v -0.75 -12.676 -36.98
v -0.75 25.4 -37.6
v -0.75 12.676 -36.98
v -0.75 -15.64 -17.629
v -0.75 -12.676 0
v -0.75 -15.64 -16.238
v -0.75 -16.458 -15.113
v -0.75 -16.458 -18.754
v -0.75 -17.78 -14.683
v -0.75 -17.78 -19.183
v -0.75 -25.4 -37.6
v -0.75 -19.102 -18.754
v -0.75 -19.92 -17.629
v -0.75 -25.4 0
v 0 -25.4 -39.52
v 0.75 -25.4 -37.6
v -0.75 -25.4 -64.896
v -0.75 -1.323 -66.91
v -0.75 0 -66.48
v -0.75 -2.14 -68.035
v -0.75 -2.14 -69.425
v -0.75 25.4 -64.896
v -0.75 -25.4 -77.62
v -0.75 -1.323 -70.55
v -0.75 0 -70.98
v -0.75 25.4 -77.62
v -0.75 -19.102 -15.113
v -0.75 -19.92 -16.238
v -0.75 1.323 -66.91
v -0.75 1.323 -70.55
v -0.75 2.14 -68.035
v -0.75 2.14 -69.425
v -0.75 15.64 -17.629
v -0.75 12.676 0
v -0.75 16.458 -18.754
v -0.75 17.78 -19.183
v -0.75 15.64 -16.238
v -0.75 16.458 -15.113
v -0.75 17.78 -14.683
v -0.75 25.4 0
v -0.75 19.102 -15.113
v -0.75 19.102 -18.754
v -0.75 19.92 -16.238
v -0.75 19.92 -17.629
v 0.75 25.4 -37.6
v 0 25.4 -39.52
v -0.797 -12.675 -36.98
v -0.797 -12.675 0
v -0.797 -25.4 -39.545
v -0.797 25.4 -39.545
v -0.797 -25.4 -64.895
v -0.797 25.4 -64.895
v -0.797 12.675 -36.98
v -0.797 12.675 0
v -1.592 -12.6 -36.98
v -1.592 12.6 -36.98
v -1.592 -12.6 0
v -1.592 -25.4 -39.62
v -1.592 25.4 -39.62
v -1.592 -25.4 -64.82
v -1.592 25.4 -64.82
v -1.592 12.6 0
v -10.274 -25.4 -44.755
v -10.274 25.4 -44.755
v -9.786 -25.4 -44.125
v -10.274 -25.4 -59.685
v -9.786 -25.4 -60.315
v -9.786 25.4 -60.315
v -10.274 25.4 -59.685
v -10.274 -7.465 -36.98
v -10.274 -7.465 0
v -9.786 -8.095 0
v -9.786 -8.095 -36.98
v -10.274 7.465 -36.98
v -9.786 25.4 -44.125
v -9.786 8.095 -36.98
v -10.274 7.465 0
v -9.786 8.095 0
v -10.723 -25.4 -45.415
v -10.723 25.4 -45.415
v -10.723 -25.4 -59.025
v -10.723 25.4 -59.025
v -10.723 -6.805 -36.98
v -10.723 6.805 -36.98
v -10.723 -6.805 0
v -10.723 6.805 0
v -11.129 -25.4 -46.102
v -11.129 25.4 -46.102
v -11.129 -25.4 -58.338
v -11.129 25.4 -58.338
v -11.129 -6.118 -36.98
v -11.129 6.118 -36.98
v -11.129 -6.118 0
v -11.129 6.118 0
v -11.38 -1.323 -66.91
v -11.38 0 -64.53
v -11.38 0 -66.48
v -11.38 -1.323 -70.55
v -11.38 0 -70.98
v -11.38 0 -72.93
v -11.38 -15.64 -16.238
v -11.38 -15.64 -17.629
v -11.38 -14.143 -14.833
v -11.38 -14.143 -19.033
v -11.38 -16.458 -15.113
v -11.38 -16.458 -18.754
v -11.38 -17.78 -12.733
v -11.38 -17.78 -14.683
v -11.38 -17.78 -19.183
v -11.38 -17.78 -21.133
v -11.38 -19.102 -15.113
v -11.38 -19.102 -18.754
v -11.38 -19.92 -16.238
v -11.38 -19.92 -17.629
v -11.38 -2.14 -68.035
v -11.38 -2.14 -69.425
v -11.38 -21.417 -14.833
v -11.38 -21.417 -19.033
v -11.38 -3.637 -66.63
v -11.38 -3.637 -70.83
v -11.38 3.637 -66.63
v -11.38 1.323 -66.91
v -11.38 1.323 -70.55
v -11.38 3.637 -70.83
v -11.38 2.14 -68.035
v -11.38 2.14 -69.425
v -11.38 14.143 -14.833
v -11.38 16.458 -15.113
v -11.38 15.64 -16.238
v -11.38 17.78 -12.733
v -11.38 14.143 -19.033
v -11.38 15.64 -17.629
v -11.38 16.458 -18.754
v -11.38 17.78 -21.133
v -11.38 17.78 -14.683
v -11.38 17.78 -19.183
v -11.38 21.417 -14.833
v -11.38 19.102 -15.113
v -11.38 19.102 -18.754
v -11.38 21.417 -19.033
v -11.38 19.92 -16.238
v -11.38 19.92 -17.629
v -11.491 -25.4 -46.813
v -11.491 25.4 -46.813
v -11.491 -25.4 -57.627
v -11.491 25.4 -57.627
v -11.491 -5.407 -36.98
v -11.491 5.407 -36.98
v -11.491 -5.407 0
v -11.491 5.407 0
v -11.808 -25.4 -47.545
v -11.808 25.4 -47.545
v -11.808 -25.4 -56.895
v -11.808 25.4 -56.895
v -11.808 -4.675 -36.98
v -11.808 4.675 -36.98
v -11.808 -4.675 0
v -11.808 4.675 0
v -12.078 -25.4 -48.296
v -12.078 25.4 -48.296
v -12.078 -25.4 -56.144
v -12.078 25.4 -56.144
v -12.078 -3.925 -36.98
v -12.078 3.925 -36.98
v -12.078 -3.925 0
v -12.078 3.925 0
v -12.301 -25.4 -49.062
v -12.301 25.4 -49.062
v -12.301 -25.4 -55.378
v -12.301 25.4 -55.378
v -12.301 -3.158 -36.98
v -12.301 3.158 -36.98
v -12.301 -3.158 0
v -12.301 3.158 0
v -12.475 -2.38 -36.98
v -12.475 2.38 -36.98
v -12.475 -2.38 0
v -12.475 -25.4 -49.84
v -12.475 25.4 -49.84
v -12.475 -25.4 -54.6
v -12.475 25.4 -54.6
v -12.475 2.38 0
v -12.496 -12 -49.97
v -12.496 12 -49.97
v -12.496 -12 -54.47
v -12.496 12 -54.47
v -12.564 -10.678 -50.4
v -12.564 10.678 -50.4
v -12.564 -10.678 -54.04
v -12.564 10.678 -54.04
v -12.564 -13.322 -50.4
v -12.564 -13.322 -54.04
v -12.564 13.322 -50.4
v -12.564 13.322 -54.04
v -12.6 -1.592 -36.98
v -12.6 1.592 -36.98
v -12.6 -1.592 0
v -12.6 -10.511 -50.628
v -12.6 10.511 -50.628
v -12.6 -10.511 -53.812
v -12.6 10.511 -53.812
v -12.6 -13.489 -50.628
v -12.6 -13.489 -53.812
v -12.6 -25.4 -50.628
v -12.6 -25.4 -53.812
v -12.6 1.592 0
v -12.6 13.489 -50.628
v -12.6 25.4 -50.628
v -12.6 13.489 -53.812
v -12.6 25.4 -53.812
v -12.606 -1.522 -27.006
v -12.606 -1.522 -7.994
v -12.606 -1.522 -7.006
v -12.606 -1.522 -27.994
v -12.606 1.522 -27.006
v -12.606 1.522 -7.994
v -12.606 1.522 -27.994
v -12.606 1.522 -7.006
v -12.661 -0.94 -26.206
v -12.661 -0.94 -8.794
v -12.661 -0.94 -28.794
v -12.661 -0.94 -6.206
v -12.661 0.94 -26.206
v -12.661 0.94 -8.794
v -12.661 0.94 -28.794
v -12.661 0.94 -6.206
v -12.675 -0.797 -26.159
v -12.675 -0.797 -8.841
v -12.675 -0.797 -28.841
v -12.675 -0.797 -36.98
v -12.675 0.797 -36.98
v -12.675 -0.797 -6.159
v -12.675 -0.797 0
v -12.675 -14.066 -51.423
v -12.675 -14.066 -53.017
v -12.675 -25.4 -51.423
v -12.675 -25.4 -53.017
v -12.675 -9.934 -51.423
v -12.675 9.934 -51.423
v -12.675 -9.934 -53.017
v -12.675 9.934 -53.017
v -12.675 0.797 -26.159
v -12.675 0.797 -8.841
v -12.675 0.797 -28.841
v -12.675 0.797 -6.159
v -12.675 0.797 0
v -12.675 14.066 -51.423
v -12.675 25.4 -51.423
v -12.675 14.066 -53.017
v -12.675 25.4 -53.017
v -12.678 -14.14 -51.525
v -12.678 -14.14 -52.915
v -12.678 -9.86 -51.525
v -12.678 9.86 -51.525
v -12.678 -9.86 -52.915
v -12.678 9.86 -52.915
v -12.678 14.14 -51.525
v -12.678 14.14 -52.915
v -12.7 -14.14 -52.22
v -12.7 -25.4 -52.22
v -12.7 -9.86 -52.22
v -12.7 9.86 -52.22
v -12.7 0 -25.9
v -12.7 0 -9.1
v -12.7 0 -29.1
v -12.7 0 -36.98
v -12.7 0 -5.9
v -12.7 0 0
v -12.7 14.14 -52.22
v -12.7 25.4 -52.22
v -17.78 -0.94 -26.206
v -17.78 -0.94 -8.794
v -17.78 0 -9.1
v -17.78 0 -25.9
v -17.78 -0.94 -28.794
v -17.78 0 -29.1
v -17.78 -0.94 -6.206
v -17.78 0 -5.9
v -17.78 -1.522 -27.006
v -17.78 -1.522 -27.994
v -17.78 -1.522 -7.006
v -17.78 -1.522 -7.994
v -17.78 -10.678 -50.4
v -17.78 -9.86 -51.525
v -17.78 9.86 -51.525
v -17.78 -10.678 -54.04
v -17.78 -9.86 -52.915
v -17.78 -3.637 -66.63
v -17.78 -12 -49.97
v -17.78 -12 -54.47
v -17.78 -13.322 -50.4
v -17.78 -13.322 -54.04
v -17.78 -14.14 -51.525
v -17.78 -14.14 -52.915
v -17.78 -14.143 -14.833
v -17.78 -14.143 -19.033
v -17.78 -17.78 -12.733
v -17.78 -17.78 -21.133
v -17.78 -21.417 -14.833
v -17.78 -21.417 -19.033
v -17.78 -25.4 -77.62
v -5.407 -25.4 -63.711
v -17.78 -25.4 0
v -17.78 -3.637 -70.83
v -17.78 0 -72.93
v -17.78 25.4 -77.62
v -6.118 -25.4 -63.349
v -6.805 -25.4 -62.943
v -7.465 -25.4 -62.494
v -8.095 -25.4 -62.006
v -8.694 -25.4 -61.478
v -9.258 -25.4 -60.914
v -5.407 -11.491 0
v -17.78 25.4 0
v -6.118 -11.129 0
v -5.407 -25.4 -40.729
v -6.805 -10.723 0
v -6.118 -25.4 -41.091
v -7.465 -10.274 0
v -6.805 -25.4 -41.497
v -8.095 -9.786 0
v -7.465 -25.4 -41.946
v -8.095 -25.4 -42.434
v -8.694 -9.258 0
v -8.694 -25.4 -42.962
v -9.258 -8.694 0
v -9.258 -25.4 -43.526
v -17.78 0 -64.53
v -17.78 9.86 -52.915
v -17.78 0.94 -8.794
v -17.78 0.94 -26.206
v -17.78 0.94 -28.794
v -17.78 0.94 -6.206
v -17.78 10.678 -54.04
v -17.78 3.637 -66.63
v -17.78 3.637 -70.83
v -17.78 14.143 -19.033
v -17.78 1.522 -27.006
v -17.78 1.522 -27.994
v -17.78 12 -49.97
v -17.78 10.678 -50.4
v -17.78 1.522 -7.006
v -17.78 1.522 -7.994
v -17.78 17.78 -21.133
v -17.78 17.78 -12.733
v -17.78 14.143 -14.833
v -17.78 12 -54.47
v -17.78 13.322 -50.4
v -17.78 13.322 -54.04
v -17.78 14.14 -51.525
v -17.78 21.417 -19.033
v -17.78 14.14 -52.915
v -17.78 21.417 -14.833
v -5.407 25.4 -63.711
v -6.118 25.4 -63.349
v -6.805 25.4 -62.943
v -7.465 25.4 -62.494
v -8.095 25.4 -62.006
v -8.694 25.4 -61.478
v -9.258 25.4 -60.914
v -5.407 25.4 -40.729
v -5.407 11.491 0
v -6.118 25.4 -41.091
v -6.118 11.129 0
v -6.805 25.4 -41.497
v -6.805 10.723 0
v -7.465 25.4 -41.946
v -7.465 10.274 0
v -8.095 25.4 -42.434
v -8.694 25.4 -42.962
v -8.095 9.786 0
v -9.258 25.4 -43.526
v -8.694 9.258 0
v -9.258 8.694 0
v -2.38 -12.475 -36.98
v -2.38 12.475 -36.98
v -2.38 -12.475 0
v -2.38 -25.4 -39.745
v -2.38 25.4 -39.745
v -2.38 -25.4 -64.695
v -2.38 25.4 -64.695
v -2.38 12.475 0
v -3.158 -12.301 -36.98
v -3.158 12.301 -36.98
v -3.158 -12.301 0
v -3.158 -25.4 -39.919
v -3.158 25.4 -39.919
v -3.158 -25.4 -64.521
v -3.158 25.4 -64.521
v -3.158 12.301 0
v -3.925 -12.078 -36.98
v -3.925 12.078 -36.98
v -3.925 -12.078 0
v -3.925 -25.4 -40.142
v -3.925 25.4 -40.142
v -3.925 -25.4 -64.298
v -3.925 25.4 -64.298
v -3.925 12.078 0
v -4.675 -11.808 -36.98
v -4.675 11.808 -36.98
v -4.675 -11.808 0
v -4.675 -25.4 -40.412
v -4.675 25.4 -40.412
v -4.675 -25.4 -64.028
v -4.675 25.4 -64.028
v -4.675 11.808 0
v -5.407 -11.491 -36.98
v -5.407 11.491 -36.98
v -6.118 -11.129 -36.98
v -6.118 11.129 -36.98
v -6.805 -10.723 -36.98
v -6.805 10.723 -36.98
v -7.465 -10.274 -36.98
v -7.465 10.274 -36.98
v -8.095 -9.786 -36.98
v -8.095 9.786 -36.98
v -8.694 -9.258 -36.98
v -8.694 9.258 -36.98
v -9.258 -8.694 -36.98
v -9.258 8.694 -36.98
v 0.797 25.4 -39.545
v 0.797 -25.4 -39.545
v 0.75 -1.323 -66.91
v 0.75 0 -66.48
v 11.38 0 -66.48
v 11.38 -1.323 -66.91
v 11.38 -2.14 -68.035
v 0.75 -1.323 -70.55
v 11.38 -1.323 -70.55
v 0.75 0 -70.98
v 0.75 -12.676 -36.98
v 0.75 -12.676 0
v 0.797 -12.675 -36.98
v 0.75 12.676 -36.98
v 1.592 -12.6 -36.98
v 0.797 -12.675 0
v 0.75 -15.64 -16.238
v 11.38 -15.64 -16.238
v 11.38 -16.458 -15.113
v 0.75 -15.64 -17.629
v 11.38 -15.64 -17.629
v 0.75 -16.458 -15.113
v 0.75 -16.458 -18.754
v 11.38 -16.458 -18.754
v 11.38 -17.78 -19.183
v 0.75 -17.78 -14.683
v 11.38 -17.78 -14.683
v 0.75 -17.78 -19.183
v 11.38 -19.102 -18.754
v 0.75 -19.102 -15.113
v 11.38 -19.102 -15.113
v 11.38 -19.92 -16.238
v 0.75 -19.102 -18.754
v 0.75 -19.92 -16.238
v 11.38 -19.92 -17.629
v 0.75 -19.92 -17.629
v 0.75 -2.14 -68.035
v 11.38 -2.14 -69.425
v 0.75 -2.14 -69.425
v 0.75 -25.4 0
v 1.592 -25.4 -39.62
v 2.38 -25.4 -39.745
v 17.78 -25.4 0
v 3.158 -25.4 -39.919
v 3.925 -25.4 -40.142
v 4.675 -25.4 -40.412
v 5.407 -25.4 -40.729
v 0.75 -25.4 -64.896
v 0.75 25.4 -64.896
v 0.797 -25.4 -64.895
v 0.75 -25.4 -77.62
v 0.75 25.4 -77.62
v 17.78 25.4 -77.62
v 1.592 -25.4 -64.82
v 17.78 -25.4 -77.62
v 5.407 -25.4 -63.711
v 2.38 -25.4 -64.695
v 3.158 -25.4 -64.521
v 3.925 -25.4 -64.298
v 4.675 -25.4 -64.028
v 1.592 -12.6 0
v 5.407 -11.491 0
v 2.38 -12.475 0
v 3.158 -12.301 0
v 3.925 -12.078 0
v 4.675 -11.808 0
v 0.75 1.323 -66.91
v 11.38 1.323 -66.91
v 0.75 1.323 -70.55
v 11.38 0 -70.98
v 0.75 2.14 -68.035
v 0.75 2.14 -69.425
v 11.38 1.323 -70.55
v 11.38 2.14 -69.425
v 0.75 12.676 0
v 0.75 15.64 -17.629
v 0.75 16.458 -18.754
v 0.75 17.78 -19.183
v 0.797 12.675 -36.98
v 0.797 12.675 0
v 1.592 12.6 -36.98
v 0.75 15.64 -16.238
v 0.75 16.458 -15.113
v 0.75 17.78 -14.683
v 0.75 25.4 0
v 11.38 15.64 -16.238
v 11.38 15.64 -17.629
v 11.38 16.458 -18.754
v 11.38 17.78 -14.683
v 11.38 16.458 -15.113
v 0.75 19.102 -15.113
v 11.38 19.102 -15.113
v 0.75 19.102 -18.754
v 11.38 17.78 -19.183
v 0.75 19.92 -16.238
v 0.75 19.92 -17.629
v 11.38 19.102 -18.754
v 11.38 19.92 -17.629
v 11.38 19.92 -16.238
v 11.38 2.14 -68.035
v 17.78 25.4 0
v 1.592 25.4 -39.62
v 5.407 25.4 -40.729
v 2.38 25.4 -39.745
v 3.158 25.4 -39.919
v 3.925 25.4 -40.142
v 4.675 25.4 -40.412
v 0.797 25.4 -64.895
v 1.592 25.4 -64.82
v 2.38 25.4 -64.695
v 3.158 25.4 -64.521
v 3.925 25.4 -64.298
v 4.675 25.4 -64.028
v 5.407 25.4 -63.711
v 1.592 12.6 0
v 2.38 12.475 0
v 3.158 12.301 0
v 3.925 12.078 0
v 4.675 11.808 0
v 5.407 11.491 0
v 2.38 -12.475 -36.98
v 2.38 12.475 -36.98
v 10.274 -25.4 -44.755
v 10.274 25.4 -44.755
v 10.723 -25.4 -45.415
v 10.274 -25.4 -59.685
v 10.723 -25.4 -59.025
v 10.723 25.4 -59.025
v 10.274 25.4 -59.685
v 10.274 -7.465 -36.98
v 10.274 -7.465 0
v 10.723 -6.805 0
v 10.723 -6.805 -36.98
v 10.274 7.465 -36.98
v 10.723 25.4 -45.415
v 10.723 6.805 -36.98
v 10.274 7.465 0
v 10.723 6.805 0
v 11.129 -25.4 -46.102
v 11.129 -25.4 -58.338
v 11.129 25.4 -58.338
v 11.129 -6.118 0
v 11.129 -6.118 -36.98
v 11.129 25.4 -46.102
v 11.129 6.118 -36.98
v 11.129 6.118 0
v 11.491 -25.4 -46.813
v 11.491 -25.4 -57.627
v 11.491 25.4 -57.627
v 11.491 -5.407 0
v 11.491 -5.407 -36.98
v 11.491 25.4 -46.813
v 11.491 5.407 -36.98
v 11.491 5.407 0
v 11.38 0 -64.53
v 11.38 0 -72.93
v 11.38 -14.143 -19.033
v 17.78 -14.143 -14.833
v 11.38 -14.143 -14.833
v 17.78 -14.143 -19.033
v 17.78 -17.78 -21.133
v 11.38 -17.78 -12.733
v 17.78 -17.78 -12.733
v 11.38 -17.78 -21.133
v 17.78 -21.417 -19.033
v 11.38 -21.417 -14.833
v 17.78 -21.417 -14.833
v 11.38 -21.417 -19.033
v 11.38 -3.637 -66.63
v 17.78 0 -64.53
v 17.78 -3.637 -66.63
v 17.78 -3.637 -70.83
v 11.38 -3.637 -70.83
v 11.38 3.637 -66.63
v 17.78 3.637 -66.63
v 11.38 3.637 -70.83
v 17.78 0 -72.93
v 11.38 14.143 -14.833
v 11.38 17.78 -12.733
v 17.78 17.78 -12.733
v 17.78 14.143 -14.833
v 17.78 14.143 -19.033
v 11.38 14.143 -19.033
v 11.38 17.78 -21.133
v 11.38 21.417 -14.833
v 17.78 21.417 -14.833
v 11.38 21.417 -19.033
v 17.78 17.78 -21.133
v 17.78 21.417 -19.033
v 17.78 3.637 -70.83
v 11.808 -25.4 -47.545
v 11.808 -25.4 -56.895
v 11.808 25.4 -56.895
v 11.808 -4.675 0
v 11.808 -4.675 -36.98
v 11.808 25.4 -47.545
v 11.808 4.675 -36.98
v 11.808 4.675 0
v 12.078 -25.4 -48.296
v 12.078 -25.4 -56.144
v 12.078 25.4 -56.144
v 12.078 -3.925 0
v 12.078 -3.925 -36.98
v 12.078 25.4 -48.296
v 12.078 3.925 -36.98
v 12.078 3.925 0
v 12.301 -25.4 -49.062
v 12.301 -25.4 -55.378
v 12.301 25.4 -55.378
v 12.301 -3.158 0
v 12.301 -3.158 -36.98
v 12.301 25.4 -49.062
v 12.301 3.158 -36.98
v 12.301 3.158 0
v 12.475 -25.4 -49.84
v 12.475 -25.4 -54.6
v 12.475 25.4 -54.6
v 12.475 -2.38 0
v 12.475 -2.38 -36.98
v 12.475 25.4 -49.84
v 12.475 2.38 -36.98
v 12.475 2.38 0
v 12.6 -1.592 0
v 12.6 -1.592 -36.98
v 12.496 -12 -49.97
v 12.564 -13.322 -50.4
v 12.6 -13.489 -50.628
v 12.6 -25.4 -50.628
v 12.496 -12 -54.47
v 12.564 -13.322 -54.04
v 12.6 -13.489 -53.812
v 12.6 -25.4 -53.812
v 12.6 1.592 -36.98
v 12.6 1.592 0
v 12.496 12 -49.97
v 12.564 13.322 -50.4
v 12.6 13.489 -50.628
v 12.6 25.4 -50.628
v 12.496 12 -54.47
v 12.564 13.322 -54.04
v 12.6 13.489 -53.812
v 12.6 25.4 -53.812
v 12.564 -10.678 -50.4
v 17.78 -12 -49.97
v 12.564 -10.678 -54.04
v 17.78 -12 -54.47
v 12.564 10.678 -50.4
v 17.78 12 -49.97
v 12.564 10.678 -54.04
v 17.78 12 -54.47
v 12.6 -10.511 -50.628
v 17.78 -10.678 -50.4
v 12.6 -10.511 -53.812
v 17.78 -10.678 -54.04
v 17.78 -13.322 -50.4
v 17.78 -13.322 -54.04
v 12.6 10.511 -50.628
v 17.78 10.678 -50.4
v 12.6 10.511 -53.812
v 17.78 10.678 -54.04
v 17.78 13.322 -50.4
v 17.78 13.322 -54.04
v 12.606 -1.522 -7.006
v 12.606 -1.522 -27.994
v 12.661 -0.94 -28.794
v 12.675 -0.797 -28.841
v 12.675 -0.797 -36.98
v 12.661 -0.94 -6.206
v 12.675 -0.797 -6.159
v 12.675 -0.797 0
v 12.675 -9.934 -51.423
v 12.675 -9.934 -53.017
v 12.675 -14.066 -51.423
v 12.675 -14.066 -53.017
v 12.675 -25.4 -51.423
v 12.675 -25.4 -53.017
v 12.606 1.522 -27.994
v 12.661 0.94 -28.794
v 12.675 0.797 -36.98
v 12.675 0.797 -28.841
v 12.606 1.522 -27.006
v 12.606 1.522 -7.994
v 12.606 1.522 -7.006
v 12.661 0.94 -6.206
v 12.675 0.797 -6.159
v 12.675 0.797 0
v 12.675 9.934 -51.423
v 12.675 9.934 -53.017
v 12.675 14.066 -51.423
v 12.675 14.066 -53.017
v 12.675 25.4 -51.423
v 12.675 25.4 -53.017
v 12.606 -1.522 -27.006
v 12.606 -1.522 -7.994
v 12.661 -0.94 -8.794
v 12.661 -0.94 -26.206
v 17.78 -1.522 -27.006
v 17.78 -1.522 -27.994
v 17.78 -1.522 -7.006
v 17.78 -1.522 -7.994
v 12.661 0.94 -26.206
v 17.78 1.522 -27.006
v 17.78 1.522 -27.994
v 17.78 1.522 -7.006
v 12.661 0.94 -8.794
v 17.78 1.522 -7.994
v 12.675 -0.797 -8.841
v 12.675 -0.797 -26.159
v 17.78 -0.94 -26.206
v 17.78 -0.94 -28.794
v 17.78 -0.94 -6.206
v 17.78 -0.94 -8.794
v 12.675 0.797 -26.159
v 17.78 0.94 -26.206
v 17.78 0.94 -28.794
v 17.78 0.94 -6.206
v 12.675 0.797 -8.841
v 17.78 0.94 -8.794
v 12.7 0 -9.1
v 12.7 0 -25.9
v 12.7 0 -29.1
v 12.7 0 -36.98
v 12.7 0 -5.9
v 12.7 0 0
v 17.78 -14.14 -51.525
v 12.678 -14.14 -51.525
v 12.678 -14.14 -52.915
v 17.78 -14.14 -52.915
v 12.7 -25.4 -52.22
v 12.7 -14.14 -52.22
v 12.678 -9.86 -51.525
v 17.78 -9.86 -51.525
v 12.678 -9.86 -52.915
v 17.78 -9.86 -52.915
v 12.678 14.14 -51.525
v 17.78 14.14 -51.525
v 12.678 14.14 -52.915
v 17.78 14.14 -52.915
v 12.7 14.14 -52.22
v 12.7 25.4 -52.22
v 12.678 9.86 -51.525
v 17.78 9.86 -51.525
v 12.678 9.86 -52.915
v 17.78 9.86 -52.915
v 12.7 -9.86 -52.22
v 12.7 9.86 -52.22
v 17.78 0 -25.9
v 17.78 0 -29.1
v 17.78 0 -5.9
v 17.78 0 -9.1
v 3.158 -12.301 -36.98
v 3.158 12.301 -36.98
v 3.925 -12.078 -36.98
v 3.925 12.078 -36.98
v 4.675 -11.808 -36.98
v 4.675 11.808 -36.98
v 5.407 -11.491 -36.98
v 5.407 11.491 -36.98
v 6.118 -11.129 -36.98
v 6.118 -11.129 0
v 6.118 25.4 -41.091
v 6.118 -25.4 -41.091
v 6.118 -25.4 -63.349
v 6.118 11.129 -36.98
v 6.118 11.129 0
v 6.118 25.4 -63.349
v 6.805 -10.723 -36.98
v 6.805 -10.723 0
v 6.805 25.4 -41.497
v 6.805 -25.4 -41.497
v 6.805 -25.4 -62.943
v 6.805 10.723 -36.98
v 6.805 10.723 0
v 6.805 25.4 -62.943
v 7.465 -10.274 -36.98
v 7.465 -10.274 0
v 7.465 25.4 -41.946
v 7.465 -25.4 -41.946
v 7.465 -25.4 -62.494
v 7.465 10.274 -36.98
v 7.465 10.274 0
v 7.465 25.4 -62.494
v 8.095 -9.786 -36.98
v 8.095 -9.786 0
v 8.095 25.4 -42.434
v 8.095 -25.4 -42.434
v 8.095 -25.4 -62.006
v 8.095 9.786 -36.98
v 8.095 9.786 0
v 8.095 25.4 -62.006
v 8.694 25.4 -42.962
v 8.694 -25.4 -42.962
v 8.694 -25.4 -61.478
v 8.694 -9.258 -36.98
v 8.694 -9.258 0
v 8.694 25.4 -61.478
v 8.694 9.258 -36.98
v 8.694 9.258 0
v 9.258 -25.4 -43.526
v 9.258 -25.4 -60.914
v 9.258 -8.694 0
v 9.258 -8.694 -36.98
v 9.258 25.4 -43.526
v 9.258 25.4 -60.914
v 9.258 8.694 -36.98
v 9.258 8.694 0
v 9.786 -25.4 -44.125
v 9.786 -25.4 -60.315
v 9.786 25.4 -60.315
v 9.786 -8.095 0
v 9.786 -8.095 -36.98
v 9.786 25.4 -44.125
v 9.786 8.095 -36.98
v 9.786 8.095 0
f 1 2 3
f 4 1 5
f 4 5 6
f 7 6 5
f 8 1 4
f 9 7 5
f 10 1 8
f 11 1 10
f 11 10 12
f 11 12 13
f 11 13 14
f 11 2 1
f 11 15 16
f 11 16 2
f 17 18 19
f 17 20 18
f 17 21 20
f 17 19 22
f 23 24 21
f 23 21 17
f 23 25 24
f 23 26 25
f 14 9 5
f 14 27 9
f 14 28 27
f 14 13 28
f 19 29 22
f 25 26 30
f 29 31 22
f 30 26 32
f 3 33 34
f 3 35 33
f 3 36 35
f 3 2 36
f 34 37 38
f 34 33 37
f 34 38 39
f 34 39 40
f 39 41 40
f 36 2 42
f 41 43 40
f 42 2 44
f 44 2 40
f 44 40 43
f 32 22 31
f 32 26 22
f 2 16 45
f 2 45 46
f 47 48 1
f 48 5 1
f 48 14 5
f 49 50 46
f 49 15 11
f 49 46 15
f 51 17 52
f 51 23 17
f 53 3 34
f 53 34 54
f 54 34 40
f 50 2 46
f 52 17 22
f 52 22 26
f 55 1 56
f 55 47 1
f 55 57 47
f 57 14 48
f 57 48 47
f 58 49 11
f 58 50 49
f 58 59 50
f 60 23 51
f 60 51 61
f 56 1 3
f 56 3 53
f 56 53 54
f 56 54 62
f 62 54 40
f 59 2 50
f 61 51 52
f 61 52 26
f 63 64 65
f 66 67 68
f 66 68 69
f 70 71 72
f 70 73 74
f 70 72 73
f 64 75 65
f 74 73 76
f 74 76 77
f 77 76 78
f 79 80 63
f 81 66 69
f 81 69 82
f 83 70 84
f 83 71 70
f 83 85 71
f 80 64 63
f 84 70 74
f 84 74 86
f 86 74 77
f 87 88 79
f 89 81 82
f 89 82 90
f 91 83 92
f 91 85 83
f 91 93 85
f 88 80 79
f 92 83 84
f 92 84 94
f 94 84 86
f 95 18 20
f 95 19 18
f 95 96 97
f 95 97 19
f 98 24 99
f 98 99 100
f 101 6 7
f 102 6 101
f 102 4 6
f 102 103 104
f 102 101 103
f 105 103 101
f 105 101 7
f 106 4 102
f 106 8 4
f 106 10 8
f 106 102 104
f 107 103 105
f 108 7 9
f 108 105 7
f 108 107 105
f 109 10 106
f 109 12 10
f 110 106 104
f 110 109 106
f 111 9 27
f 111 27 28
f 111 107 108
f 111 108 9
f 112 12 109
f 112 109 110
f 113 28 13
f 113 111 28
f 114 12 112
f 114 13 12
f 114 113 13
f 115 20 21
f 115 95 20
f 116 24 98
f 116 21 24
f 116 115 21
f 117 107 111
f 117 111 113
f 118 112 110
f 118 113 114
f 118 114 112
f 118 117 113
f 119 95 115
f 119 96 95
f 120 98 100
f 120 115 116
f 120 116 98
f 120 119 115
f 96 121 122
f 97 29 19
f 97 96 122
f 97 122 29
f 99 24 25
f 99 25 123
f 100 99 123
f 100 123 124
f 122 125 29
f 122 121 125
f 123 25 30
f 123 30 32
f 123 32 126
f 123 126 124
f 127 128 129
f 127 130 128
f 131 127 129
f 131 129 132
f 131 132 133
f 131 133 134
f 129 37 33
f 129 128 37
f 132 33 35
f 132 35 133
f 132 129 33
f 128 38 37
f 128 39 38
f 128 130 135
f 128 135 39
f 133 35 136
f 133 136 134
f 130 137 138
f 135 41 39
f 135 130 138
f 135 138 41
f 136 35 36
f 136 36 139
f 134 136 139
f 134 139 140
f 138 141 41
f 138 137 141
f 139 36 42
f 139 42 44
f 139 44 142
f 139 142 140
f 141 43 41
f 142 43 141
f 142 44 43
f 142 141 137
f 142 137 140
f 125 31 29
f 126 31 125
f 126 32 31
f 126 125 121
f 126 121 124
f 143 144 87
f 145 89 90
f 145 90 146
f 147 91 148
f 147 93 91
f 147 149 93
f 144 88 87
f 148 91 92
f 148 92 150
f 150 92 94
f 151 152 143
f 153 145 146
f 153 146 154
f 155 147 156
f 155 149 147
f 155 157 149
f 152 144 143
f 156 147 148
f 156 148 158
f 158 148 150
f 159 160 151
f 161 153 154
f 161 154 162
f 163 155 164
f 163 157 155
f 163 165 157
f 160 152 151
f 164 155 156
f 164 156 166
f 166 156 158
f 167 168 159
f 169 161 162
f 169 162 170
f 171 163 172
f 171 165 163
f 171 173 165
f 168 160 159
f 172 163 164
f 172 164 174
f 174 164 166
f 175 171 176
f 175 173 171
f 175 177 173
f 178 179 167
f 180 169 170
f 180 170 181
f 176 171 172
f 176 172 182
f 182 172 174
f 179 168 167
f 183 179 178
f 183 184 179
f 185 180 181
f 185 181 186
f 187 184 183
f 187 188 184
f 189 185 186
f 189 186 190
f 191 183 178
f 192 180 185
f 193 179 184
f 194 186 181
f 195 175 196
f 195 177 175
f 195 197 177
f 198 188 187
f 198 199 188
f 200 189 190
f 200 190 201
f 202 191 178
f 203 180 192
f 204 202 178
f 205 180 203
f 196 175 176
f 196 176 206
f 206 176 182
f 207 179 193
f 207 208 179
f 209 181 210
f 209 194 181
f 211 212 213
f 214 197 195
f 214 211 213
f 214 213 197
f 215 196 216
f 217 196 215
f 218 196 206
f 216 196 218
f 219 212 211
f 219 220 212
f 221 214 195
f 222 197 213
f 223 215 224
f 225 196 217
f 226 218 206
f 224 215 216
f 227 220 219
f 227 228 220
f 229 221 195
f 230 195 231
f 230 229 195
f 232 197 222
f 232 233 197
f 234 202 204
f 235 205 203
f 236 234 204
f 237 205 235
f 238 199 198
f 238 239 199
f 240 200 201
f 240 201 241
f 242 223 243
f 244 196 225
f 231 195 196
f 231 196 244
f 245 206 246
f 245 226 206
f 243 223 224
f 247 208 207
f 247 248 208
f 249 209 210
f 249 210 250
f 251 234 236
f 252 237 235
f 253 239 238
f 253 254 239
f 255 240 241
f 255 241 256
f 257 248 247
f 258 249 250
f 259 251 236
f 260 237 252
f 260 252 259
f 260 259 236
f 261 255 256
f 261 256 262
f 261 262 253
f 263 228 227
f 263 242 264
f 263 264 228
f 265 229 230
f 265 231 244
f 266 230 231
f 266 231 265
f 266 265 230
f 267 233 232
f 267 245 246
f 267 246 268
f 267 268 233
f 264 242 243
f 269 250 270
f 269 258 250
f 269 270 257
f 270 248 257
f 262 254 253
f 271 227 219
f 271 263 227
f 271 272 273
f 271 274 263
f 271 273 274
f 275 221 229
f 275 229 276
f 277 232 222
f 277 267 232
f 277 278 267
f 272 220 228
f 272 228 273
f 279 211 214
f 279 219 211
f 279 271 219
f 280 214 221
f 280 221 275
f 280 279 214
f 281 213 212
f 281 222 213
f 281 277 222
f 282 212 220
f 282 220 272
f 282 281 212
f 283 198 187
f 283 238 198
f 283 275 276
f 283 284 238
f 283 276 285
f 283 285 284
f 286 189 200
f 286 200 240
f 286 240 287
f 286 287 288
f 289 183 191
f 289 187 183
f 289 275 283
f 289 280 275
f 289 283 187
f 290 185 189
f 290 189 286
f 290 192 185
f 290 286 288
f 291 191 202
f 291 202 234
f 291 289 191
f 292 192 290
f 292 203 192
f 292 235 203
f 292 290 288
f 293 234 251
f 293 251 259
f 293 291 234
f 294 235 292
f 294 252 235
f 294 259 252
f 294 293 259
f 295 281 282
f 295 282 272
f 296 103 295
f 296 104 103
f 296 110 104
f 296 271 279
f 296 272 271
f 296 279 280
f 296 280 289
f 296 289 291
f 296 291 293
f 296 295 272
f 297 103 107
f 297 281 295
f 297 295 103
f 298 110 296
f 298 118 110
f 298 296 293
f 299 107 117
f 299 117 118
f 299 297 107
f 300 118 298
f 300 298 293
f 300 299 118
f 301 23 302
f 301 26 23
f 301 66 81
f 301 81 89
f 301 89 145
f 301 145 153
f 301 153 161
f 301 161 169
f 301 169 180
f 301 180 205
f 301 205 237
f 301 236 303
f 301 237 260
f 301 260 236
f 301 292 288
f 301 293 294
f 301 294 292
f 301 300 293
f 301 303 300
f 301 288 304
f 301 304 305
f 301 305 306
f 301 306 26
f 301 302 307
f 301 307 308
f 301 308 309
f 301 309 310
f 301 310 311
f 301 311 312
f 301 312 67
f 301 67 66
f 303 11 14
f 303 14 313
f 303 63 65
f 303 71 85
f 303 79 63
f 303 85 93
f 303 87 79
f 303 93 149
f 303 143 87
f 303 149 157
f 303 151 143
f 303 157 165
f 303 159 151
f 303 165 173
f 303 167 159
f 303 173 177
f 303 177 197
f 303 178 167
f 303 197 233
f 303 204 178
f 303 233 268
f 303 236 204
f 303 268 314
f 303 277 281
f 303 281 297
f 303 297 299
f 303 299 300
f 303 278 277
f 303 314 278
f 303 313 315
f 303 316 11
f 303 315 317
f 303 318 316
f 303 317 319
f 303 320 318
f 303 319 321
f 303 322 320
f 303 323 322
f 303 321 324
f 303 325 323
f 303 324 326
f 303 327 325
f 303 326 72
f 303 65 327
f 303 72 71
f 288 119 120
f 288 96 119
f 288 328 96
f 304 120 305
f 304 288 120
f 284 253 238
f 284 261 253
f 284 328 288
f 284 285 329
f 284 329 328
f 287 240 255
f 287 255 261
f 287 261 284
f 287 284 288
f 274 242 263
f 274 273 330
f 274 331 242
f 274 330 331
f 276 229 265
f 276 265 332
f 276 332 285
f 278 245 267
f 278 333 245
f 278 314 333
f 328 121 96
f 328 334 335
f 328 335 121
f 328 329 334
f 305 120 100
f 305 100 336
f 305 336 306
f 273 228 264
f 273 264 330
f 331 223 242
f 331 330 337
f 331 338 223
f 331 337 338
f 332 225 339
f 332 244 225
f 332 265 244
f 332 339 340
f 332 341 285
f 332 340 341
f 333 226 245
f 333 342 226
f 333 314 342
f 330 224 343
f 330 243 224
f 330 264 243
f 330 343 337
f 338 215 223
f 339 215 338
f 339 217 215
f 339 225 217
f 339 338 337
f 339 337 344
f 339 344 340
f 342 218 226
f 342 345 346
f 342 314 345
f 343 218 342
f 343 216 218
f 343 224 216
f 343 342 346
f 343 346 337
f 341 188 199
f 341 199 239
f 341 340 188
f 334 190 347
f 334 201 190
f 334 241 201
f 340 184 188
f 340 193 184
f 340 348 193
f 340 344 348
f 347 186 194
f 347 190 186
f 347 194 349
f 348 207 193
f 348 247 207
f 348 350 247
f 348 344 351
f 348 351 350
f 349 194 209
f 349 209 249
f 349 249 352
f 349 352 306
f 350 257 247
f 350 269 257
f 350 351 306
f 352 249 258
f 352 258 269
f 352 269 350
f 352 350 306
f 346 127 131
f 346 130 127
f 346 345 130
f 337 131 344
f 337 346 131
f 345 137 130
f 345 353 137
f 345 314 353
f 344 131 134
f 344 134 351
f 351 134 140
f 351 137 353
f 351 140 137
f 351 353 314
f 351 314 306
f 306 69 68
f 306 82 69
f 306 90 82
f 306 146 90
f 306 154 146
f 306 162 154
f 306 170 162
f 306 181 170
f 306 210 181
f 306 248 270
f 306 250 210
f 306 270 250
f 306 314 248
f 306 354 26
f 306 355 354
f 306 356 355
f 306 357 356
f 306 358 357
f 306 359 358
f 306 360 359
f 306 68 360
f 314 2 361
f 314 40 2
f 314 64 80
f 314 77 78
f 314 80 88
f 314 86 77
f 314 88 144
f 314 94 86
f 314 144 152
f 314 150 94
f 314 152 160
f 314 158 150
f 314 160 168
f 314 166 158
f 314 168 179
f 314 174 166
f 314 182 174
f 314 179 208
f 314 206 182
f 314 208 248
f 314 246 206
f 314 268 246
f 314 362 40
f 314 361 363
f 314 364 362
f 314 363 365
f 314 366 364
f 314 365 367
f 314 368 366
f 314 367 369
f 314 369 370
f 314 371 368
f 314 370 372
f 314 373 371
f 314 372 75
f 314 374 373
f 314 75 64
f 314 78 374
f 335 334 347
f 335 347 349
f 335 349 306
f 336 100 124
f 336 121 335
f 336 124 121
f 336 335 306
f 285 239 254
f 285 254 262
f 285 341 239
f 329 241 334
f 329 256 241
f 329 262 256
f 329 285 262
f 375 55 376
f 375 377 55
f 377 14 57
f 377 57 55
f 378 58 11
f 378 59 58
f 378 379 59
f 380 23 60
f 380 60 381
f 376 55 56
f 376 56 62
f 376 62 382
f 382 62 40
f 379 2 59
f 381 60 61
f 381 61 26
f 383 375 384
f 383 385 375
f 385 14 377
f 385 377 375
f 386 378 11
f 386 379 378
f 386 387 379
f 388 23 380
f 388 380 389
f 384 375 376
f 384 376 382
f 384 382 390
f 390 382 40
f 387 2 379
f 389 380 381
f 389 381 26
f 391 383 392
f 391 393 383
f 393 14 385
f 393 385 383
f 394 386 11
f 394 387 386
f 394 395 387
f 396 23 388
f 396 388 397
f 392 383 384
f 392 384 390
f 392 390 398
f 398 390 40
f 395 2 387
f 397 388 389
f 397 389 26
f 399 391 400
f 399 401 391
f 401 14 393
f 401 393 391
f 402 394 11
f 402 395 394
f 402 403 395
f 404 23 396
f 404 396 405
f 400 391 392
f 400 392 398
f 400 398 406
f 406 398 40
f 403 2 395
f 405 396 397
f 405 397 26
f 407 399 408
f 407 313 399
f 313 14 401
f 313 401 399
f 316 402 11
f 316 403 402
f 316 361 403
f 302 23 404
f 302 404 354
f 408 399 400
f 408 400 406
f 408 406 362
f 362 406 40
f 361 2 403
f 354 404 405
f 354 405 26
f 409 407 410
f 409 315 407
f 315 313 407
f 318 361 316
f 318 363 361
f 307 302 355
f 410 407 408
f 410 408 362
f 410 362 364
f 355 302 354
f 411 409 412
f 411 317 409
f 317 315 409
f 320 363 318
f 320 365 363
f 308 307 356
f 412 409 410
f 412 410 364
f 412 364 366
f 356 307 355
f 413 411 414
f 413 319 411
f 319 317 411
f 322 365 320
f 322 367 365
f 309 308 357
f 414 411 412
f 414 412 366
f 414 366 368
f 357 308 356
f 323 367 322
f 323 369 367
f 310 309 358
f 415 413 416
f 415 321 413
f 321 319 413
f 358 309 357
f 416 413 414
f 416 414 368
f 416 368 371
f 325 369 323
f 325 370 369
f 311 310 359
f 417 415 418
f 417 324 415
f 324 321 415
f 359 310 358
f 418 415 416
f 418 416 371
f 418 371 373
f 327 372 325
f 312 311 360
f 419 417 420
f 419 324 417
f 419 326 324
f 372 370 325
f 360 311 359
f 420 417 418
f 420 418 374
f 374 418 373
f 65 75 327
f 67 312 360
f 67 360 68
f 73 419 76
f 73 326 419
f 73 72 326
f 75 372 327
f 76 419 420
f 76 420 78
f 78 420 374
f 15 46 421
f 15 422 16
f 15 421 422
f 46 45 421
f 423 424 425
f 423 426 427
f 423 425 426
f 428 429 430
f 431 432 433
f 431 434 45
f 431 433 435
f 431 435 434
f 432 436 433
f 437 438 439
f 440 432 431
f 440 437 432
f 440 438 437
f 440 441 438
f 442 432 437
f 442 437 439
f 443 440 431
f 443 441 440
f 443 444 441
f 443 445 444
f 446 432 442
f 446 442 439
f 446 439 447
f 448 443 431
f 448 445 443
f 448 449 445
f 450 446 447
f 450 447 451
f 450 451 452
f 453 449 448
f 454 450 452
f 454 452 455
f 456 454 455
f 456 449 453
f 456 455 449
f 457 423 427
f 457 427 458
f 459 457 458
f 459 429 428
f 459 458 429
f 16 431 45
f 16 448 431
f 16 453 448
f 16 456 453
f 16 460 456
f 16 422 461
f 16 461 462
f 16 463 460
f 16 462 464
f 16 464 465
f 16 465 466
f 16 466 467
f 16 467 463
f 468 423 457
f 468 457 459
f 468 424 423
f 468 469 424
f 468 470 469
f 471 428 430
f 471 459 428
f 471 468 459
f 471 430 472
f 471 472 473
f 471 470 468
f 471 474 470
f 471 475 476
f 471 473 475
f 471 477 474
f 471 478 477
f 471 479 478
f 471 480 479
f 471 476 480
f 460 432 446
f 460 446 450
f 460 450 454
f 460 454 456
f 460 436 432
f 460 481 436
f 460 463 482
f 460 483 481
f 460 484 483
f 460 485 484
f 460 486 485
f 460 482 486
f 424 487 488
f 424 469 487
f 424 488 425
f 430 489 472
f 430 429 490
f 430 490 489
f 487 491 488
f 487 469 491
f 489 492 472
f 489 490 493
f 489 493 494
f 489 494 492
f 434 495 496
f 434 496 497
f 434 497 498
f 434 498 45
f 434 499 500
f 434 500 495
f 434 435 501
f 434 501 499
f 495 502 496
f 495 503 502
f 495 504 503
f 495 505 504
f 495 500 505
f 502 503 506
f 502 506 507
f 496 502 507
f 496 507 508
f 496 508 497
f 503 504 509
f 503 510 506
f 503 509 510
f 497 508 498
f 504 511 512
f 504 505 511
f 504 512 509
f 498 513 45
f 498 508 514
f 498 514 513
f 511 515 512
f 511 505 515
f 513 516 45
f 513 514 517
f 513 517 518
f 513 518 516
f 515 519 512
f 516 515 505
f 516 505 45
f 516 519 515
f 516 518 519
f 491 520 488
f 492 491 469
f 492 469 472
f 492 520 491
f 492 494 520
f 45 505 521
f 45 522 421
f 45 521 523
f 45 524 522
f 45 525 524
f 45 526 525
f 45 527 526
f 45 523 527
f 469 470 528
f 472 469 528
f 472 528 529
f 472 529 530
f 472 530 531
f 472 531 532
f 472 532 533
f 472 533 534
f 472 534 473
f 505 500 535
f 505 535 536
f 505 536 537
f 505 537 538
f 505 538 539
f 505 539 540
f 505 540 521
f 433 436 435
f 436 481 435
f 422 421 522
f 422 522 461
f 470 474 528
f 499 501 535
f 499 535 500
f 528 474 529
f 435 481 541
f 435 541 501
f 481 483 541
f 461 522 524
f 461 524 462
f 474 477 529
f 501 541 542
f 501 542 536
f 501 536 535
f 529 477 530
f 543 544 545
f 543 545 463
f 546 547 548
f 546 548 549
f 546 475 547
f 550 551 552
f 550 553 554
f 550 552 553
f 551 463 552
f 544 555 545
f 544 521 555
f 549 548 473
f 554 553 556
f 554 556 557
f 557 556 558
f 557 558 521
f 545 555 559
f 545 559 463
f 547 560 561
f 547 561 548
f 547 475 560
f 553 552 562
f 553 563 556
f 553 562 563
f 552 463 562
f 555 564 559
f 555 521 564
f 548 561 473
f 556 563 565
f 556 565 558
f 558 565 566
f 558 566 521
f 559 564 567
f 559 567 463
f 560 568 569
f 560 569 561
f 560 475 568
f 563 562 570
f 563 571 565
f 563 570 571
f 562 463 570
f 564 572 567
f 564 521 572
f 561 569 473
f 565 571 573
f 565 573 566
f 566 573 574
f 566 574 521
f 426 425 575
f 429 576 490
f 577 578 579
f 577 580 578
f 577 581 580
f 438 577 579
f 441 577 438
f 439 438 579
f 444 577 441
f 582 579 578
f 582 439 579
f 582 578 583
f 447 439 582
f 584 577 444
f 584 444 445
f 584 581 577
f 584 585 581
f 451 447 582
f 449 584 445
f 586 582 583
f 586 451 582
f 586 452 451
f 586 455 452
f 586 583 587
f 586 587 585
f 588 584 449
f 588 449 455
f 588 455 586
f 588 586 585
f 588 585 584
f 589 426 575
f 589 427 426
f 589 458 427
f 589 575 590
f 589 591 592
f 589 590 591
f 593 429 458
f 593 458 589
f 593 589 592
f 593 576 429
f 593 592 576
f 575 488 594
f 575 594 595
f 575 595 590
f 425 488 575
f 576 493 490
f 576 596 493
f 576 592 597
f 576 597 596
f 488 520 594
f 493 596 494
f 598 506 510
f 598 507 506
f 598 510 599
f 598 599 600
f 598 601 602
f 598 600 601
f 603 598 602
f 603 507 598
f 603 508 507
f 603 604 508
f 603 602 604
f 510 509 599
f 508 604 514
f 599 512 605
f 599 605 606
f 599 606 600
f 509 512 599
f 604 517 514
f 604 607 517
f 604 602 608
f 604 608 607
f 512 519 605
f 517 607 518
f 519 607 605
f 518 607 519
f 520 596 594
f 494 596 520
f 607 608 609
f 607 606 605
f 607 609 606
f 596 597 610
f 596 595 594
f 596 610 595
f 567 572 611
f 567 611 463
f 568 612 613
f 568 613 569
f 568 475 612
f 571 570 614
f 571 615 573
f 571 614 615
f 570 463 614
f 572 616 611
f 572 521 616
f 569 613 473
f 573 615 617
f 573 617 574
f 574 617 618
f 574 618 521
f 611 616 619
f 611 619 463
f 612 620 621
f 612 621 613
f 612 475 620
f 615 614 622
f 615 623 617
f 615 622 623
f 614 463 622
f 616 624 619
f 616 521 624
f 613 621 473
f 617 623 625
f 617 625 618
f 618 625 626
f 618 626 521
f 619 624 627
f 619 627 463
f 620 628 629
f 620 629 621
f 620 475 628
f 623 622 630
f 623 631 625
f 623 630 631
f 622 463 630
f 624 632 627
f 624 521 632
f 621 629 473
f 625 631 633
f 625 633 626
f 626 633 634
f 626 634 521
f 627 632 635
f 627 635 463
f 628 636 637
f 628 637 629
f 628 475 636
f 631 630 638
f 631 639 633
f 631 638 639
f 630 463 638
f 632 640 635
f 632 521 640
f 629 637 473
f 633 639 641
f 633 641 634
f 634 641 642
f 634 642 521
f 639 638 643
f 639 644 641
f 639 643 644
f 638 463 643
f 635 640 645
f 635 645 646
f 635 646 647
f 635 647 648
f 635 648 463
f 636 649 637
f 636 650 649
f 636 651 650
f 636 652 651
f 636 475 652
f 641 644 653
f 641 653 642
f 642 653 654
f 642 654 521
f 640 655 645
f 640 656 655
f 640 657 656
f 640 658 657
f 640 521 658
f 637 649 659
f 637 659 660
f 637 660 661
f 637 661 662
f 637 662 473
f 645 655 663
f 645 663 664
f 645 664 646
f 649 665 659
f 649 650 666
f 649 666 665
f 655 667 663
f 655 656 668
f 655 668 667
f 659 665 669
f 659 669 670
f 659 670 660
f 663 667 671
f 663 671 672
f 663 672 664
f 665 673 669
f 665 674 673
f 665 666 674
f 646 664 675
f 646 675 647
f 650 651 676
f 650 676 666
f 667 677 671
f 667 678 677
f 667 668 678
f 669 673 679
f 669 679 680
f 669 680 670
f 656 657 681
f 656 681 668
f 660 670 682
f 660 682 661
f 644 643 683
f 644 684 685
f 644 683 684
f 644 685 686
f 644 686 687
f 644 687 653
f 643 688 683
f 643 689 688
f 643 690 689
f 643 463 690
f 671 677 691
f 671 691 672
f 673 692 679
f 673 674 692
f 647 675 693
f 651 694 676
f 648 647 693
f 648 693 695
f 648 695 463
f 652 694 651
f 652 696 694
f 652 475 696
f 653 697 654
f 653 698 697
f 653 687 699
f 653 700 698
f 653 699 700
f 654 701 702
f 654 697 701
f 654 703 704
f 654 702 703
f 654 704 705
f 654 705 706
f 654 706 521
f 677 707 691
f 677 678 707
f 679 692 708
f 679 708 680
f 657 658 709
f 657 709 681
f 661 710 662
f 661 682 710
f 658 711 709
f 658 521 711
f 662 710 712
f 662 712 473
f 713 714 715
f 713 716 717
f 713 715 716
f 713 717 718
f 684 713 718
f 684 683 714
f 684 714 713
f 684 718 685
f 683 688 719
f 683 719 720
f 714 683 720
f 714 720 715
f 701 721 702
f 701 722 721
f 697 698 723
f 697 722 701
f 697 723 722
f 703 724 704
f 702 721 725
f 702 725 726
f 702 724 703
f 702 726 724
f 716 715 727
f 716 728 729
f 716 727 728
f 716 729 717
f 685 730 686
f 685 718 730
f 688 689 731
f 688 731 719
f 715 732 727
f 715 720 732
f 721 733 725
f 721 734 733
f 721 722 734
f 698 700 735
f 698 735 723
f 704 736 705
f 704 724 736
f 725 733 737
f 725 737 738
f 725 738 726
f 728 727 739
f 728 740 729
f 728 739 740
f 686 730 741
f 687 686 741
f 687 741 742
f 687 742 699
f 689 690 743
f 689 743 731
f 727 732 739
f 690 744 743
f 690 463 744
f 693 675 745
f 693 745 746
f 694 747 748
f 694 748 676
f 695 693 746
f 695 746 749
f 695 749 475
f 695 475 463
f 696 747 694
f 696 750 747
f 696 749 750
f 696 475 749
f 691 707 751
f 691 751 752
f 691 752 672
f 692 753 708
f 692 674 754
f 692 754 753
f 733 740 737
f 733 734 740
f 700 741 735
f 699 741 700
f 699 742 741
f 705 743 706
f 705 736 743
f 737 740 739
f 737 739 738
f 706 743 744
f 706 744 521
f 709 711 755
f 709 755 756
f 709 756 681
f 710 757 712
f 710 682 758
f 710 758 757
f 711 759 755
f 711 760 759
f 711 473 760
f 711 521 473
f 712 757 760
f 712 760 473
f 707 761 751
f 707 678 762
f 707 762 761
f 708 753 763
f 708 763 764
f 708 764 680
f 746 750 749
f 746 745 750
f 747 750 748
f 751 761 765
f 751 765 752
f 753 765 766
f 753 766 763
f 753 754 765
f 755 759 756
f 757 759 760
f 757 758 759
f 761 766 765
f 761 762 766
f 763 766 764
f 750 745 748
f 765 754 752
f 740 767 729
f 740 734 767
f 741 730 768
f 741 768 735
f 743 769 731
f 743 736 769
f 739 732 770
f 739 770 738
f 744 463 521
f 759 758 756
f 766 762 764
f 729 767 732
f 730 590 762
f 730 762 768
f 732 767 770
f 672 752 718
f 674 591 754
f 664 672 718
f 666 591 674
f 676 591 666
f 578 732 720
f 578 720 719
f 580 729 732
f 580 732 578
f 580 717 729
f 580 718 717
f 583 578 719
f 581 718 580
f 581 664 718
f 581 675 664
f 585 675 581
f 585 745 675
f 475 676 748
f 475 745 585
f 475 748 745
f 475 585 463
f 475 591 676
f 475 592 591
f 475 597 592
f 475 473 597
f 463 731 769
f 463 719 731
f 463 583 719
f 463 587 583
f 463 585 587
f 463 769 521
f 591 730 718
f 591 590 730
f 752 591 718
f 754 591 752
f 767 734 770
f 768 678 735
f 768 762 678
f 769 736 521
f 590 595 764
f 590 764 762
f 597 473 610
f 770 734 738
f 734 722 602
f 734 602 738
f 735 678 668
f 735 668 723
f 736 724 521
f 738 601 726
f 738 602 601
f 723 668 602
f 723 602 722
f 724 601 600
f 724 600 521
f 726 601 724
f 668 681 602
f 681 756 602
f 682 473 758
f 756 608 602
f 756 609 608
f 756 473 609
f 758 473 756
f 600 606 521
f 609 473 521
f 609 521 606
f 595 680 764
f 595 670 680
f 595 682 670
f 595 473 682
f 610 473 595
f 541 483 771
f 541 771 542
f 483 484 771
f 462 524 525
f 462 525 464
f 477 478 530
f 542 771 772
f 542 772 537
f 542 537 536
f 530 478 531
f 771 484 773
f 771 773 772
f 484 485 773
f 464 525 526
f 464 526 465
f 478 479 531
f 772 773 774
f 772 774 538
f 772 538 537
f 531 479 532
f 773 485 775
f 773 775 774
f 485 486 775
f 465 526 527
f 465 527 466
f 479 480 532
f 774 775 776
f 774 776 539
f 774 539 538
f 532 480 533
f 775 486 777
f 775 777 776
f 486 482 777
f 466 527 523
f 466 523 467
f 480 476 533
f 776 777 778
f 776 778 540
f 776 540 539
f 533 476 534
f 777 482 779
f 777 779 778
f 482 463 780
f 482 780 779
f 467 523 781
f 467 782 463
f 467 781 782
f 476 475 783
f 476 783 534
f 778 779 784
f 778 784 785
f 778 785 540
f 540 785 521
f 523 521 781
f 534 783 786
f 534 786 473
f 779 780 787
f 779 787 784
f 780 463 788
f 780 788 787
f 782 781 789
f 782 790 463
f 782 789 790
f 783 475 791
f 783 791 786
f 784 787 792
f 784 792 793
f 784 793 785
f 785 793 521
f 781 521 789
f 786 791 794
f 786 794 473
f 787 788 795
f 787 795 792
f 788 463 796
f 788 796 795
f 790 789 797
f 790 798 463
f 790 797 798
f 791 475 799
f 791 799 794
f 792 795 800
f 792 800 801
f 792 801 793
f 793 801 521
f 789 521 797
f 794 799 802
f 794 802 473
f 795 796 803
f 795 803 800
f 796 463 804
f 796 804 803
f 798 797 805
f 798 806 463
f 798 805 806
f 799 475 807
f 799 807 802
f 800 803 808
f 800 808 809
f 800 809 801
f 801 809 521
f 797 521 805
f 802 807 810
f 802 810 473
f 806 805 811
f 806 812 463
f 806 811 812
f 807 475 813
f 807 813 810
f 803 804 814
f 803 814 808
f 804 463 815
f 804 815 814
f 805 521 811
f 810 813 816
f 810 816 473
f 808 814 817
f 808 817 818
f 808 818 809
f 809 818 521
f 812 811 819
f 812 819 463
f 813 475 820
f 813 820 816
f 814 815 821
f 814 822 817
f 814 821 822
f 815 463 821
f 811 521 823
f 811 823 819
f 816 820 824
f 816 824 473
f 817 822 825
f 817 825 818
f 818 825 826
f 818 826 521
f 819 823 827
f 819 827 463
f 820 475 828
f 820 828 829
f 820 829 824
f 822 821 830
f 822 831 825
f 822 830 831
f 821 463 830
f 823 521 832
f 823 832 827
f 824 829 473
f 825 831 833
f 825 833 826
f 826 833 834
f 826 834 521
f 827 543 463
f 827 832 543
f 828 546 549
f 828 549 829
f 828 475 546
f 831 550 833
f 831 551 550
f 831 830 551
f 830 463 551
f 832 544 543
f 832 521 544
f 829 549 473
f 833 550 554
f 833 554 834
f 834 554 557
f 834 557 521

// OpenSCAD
// file: ../../lib/TextGenerator.scad
//Draw text
scale([4,4,4]) drawtext("Hello World!");

//Draw character set
//scale([2,2,2]) drawtext(" !\"#$%&'()*+,-./0123456789:;<=>?@ABCDEFGHIJKLMNOPQRSTUVWXYZ[\\]^_`abcdefghijklmnopqrstuvwxyz{|}");

module drawtext(text,center=false) {
	//Characters
	chars = " !\"#$%&'()*+,-./0123456789:;<=>?@ABCDEFGHIJKLMNOPQRSTUVWXYZ[\\]^_`abcdefghijklmnopqrstuvwxyz{|}";

	//Chracter table defining 5x7 characters
	//Adapted from: http://www.geocities.com/dinceraydin/djlcdsim/chartable.js
	char_table = [ [ 0, 0, 0, 0, 0, 0, 0],
                  [ 4, 0, 4, 4, 4, 4, 4],
                  [ 0, 0, 0, 0,10,10,10],
                  [10,10,31,10,31,10,10],
                  [ 4,30, 5,14,20,15, 4],
                  [ 3,19, 8, 4, 2,25,24],
                  [13,18,21, 8,20,18,12],
                  [ 0, 0, 0, 0, 8, 4,12],
                  [ 2, 4, 8, 8, 8, 4, 2],
                  [ 8, 4, 2, 2, 2, 4, 8],
                  [ 0, 4,21,14,21, 4, 0],
                  [ 0, 4, 4,31, 4, 4, 0],
                  [ 8, 4,12, 0, 0, 0, 0],
                  [ 0, 0, 0,31, 0, 0, 0],
                  [12,12, 0, 0, 0, 0, 0],
                  [ 0,16, 8, 4, 2, 1, 0],
                  [14,17,25,21,19,17,14],
                  [14, 4, 4, 4, 4,12, 4],
                  [31, 8, 4, 2, 1,17,14],
                  [14,17, 1, 2, 4, 2,31],
                  [ 2, 2,31,18,10, 6, 2],
                  [14,17, 1, 1,30,16,31],
                  [14,17,17,30,16, 8, 6],
                  [ 8, 8, 8, 4, 2, 1,31],
                  [14,17,17,14,17,17,14],
                  [12, 2, 1,15,17,17,14],
                  [ 0,12,12, 0,12,12, 0],
                  [ 8, 4,12, 0,12,12, 0],
                  [ 2, 4, 8,16, 8, 4, 2],
                  [ 0, 0,31, 0,31, 0, 0],
                  [16, 8, 4, 2, 4, 8,16],
                  [ 4, 0, 4, 2, 1,17,14],
                  [14,21,21,13, 1,17,14],
                  [17,17,31,17,17,17,14],
                  [30,17,17,30,17,17,30],
                  [14,17,16,16,16,17,14],
                  [30,17,17,17,17,17,30],
                  [31,16,16,30,16,16,31],
                  [16,16,16,30,16,16,31],
                  [15,17,17,23,16,17,14],
                  [17,17,17,31,17,17,17],
                  [14, 4, 4, 4, 4, 4,14],
                  [12,18, 2, 2, 2, 2, 7],
                  [17,18,20,24,20,18,17],
                  [31,16,16,16,16,16,16],
                  [17,17,17,21,21,27,17],
                  [17,17,19,21,25,17,17],
                  [14,17,17,17,17,17,14],
                  [16,16,16,30,17,17,30],
                  [13,18,21,17,17,17,14],
                  [17,18,20,30,17,17,30],
                  [30, 1, 1,14,16,16,15],
                  [ 4, 4, 4, 4, 4, 4,31],
                  [14,17,17,17,17,17,17],
                  [ 4,10,17,17,17,17,17],
                  [10,21,21,21,17,17,17],
                  [17,17,10, 4,10,17,17],
                  [ 4, 4, 4,10,17,17,17],
                  [31,16, 8, 4, 2, 1,31],
                  [14, 8, 8, 8, 8, 8,14],
                  [ 0, 1, 2, 4, 8,16, 0],
                  [14, 2, 2, 2, 2, 2,14],
                  [ 0, 0, 0, 0,17,10, 4],
                  [31, 0, 0, 0, 0, 0, 0],
                  [ 0, 0, 0, 0, 2, 4, 8],
                  [15,17,15, 1,14, 0, 0],
                  [30,17,17,25,22,16,16],
                  [14,17,16,16,14, 0, 0],
                  [15,17,17,19,13, 1, 1],
                  [14,16,31,17,14, 0, 0],
                  [ 8, 8, 8,28, 8, 9, 6],
                  [14, 1,15,17,15, 0, 0],
                  [17,17,17,25,22,16,16],
                  [14, 4, 4, 4,12, 0, 4],
                  [12,18, 2, 2, 2, 6, 2],
                  [18,20,24,20,18,16,16],
                  [14, 4, 4, 4, 4, 4,12],
                  [17,17,21,21,26, 0, 0],
                  [17,17,17,25,22, 0, 0],
                  [14,17,17,17,14, 0, 0],
                  [16,16,30,17,30, 0, 0],
                  [ 1, 1,15,19,13, 0, 0],
                  [16,16,16,25,22, 0, 0],
                  [30, 1,14,16,15, 0, 0],
                  [ 6, 9, 8, 8,28, 8, 8],
                  [13,19,17,17,17, 0, 0],
                  [ 4,10,17,17,17, 0, 0],
                  [10,21,21,17,17, 0, 0],
                  [17,10, 4,10,17, 0, 0],
                  [14, 1,15,17,17, 0, 0],
                  [31, 8, 4, 2,31, 0, 0],
                  [ 2, 4, 4, 8, 4, 4, 2],
                  [ 4, 4, 4, 4, 4, 4, 4],
                  [ 8, 4, 4, 2, 4, 4, 8] ];

	//Binary decode table
	dec_table = [ "00000", "00001", "00010", "00011", "00100", "00101",
  	            "00110", "00111", "01000", "01001", "01010", "01011",
  	            "01100", "01101", "01110", "01111", "10000", "10001",
  	            "10010", "10011", "10100", "10101", "10110", "10111",
	            "11000", "11001", "11010", "11011", "11100", "11101",
	            "11110", "11111" ];

    //Process string one character at a time
    for(itext = [0:len(text)-1]) {
        assign(length = len(text)) {
            //Convert character to index
            assign(ichar = search(text[itext],chars,1)[0]) {
                //Decode character - rows
                for(irow = [0:6]) {
                    assign(val = dec_table[char_table[ichar][irow]]) {
                        //Decode character - cols
                        for(icol = [0:4]) {
                            assign(bit = search(val[icol],"01",1)[0]) {
                                if(bit) {
                                    //Output cube
                                    if (center)
                                        translate([icol - 2.5 +
                                        (6*itext)-len(text)/2, irow-3.5,0])
                                            cube([1.0001,1.0001,1]);
                                    else {
                                        translate([icol + (6*itext), irow, 0])
                                            cube([1.0001,1.0001,1]);
                                    }
                                }
                            }
                        }
                    }
                }
            }
	}
}
}
// main file
include <../../../parameters.scad>

use <../../666_1017.scad>

rotate([180,0,0])
666_1017_drillhelper();
